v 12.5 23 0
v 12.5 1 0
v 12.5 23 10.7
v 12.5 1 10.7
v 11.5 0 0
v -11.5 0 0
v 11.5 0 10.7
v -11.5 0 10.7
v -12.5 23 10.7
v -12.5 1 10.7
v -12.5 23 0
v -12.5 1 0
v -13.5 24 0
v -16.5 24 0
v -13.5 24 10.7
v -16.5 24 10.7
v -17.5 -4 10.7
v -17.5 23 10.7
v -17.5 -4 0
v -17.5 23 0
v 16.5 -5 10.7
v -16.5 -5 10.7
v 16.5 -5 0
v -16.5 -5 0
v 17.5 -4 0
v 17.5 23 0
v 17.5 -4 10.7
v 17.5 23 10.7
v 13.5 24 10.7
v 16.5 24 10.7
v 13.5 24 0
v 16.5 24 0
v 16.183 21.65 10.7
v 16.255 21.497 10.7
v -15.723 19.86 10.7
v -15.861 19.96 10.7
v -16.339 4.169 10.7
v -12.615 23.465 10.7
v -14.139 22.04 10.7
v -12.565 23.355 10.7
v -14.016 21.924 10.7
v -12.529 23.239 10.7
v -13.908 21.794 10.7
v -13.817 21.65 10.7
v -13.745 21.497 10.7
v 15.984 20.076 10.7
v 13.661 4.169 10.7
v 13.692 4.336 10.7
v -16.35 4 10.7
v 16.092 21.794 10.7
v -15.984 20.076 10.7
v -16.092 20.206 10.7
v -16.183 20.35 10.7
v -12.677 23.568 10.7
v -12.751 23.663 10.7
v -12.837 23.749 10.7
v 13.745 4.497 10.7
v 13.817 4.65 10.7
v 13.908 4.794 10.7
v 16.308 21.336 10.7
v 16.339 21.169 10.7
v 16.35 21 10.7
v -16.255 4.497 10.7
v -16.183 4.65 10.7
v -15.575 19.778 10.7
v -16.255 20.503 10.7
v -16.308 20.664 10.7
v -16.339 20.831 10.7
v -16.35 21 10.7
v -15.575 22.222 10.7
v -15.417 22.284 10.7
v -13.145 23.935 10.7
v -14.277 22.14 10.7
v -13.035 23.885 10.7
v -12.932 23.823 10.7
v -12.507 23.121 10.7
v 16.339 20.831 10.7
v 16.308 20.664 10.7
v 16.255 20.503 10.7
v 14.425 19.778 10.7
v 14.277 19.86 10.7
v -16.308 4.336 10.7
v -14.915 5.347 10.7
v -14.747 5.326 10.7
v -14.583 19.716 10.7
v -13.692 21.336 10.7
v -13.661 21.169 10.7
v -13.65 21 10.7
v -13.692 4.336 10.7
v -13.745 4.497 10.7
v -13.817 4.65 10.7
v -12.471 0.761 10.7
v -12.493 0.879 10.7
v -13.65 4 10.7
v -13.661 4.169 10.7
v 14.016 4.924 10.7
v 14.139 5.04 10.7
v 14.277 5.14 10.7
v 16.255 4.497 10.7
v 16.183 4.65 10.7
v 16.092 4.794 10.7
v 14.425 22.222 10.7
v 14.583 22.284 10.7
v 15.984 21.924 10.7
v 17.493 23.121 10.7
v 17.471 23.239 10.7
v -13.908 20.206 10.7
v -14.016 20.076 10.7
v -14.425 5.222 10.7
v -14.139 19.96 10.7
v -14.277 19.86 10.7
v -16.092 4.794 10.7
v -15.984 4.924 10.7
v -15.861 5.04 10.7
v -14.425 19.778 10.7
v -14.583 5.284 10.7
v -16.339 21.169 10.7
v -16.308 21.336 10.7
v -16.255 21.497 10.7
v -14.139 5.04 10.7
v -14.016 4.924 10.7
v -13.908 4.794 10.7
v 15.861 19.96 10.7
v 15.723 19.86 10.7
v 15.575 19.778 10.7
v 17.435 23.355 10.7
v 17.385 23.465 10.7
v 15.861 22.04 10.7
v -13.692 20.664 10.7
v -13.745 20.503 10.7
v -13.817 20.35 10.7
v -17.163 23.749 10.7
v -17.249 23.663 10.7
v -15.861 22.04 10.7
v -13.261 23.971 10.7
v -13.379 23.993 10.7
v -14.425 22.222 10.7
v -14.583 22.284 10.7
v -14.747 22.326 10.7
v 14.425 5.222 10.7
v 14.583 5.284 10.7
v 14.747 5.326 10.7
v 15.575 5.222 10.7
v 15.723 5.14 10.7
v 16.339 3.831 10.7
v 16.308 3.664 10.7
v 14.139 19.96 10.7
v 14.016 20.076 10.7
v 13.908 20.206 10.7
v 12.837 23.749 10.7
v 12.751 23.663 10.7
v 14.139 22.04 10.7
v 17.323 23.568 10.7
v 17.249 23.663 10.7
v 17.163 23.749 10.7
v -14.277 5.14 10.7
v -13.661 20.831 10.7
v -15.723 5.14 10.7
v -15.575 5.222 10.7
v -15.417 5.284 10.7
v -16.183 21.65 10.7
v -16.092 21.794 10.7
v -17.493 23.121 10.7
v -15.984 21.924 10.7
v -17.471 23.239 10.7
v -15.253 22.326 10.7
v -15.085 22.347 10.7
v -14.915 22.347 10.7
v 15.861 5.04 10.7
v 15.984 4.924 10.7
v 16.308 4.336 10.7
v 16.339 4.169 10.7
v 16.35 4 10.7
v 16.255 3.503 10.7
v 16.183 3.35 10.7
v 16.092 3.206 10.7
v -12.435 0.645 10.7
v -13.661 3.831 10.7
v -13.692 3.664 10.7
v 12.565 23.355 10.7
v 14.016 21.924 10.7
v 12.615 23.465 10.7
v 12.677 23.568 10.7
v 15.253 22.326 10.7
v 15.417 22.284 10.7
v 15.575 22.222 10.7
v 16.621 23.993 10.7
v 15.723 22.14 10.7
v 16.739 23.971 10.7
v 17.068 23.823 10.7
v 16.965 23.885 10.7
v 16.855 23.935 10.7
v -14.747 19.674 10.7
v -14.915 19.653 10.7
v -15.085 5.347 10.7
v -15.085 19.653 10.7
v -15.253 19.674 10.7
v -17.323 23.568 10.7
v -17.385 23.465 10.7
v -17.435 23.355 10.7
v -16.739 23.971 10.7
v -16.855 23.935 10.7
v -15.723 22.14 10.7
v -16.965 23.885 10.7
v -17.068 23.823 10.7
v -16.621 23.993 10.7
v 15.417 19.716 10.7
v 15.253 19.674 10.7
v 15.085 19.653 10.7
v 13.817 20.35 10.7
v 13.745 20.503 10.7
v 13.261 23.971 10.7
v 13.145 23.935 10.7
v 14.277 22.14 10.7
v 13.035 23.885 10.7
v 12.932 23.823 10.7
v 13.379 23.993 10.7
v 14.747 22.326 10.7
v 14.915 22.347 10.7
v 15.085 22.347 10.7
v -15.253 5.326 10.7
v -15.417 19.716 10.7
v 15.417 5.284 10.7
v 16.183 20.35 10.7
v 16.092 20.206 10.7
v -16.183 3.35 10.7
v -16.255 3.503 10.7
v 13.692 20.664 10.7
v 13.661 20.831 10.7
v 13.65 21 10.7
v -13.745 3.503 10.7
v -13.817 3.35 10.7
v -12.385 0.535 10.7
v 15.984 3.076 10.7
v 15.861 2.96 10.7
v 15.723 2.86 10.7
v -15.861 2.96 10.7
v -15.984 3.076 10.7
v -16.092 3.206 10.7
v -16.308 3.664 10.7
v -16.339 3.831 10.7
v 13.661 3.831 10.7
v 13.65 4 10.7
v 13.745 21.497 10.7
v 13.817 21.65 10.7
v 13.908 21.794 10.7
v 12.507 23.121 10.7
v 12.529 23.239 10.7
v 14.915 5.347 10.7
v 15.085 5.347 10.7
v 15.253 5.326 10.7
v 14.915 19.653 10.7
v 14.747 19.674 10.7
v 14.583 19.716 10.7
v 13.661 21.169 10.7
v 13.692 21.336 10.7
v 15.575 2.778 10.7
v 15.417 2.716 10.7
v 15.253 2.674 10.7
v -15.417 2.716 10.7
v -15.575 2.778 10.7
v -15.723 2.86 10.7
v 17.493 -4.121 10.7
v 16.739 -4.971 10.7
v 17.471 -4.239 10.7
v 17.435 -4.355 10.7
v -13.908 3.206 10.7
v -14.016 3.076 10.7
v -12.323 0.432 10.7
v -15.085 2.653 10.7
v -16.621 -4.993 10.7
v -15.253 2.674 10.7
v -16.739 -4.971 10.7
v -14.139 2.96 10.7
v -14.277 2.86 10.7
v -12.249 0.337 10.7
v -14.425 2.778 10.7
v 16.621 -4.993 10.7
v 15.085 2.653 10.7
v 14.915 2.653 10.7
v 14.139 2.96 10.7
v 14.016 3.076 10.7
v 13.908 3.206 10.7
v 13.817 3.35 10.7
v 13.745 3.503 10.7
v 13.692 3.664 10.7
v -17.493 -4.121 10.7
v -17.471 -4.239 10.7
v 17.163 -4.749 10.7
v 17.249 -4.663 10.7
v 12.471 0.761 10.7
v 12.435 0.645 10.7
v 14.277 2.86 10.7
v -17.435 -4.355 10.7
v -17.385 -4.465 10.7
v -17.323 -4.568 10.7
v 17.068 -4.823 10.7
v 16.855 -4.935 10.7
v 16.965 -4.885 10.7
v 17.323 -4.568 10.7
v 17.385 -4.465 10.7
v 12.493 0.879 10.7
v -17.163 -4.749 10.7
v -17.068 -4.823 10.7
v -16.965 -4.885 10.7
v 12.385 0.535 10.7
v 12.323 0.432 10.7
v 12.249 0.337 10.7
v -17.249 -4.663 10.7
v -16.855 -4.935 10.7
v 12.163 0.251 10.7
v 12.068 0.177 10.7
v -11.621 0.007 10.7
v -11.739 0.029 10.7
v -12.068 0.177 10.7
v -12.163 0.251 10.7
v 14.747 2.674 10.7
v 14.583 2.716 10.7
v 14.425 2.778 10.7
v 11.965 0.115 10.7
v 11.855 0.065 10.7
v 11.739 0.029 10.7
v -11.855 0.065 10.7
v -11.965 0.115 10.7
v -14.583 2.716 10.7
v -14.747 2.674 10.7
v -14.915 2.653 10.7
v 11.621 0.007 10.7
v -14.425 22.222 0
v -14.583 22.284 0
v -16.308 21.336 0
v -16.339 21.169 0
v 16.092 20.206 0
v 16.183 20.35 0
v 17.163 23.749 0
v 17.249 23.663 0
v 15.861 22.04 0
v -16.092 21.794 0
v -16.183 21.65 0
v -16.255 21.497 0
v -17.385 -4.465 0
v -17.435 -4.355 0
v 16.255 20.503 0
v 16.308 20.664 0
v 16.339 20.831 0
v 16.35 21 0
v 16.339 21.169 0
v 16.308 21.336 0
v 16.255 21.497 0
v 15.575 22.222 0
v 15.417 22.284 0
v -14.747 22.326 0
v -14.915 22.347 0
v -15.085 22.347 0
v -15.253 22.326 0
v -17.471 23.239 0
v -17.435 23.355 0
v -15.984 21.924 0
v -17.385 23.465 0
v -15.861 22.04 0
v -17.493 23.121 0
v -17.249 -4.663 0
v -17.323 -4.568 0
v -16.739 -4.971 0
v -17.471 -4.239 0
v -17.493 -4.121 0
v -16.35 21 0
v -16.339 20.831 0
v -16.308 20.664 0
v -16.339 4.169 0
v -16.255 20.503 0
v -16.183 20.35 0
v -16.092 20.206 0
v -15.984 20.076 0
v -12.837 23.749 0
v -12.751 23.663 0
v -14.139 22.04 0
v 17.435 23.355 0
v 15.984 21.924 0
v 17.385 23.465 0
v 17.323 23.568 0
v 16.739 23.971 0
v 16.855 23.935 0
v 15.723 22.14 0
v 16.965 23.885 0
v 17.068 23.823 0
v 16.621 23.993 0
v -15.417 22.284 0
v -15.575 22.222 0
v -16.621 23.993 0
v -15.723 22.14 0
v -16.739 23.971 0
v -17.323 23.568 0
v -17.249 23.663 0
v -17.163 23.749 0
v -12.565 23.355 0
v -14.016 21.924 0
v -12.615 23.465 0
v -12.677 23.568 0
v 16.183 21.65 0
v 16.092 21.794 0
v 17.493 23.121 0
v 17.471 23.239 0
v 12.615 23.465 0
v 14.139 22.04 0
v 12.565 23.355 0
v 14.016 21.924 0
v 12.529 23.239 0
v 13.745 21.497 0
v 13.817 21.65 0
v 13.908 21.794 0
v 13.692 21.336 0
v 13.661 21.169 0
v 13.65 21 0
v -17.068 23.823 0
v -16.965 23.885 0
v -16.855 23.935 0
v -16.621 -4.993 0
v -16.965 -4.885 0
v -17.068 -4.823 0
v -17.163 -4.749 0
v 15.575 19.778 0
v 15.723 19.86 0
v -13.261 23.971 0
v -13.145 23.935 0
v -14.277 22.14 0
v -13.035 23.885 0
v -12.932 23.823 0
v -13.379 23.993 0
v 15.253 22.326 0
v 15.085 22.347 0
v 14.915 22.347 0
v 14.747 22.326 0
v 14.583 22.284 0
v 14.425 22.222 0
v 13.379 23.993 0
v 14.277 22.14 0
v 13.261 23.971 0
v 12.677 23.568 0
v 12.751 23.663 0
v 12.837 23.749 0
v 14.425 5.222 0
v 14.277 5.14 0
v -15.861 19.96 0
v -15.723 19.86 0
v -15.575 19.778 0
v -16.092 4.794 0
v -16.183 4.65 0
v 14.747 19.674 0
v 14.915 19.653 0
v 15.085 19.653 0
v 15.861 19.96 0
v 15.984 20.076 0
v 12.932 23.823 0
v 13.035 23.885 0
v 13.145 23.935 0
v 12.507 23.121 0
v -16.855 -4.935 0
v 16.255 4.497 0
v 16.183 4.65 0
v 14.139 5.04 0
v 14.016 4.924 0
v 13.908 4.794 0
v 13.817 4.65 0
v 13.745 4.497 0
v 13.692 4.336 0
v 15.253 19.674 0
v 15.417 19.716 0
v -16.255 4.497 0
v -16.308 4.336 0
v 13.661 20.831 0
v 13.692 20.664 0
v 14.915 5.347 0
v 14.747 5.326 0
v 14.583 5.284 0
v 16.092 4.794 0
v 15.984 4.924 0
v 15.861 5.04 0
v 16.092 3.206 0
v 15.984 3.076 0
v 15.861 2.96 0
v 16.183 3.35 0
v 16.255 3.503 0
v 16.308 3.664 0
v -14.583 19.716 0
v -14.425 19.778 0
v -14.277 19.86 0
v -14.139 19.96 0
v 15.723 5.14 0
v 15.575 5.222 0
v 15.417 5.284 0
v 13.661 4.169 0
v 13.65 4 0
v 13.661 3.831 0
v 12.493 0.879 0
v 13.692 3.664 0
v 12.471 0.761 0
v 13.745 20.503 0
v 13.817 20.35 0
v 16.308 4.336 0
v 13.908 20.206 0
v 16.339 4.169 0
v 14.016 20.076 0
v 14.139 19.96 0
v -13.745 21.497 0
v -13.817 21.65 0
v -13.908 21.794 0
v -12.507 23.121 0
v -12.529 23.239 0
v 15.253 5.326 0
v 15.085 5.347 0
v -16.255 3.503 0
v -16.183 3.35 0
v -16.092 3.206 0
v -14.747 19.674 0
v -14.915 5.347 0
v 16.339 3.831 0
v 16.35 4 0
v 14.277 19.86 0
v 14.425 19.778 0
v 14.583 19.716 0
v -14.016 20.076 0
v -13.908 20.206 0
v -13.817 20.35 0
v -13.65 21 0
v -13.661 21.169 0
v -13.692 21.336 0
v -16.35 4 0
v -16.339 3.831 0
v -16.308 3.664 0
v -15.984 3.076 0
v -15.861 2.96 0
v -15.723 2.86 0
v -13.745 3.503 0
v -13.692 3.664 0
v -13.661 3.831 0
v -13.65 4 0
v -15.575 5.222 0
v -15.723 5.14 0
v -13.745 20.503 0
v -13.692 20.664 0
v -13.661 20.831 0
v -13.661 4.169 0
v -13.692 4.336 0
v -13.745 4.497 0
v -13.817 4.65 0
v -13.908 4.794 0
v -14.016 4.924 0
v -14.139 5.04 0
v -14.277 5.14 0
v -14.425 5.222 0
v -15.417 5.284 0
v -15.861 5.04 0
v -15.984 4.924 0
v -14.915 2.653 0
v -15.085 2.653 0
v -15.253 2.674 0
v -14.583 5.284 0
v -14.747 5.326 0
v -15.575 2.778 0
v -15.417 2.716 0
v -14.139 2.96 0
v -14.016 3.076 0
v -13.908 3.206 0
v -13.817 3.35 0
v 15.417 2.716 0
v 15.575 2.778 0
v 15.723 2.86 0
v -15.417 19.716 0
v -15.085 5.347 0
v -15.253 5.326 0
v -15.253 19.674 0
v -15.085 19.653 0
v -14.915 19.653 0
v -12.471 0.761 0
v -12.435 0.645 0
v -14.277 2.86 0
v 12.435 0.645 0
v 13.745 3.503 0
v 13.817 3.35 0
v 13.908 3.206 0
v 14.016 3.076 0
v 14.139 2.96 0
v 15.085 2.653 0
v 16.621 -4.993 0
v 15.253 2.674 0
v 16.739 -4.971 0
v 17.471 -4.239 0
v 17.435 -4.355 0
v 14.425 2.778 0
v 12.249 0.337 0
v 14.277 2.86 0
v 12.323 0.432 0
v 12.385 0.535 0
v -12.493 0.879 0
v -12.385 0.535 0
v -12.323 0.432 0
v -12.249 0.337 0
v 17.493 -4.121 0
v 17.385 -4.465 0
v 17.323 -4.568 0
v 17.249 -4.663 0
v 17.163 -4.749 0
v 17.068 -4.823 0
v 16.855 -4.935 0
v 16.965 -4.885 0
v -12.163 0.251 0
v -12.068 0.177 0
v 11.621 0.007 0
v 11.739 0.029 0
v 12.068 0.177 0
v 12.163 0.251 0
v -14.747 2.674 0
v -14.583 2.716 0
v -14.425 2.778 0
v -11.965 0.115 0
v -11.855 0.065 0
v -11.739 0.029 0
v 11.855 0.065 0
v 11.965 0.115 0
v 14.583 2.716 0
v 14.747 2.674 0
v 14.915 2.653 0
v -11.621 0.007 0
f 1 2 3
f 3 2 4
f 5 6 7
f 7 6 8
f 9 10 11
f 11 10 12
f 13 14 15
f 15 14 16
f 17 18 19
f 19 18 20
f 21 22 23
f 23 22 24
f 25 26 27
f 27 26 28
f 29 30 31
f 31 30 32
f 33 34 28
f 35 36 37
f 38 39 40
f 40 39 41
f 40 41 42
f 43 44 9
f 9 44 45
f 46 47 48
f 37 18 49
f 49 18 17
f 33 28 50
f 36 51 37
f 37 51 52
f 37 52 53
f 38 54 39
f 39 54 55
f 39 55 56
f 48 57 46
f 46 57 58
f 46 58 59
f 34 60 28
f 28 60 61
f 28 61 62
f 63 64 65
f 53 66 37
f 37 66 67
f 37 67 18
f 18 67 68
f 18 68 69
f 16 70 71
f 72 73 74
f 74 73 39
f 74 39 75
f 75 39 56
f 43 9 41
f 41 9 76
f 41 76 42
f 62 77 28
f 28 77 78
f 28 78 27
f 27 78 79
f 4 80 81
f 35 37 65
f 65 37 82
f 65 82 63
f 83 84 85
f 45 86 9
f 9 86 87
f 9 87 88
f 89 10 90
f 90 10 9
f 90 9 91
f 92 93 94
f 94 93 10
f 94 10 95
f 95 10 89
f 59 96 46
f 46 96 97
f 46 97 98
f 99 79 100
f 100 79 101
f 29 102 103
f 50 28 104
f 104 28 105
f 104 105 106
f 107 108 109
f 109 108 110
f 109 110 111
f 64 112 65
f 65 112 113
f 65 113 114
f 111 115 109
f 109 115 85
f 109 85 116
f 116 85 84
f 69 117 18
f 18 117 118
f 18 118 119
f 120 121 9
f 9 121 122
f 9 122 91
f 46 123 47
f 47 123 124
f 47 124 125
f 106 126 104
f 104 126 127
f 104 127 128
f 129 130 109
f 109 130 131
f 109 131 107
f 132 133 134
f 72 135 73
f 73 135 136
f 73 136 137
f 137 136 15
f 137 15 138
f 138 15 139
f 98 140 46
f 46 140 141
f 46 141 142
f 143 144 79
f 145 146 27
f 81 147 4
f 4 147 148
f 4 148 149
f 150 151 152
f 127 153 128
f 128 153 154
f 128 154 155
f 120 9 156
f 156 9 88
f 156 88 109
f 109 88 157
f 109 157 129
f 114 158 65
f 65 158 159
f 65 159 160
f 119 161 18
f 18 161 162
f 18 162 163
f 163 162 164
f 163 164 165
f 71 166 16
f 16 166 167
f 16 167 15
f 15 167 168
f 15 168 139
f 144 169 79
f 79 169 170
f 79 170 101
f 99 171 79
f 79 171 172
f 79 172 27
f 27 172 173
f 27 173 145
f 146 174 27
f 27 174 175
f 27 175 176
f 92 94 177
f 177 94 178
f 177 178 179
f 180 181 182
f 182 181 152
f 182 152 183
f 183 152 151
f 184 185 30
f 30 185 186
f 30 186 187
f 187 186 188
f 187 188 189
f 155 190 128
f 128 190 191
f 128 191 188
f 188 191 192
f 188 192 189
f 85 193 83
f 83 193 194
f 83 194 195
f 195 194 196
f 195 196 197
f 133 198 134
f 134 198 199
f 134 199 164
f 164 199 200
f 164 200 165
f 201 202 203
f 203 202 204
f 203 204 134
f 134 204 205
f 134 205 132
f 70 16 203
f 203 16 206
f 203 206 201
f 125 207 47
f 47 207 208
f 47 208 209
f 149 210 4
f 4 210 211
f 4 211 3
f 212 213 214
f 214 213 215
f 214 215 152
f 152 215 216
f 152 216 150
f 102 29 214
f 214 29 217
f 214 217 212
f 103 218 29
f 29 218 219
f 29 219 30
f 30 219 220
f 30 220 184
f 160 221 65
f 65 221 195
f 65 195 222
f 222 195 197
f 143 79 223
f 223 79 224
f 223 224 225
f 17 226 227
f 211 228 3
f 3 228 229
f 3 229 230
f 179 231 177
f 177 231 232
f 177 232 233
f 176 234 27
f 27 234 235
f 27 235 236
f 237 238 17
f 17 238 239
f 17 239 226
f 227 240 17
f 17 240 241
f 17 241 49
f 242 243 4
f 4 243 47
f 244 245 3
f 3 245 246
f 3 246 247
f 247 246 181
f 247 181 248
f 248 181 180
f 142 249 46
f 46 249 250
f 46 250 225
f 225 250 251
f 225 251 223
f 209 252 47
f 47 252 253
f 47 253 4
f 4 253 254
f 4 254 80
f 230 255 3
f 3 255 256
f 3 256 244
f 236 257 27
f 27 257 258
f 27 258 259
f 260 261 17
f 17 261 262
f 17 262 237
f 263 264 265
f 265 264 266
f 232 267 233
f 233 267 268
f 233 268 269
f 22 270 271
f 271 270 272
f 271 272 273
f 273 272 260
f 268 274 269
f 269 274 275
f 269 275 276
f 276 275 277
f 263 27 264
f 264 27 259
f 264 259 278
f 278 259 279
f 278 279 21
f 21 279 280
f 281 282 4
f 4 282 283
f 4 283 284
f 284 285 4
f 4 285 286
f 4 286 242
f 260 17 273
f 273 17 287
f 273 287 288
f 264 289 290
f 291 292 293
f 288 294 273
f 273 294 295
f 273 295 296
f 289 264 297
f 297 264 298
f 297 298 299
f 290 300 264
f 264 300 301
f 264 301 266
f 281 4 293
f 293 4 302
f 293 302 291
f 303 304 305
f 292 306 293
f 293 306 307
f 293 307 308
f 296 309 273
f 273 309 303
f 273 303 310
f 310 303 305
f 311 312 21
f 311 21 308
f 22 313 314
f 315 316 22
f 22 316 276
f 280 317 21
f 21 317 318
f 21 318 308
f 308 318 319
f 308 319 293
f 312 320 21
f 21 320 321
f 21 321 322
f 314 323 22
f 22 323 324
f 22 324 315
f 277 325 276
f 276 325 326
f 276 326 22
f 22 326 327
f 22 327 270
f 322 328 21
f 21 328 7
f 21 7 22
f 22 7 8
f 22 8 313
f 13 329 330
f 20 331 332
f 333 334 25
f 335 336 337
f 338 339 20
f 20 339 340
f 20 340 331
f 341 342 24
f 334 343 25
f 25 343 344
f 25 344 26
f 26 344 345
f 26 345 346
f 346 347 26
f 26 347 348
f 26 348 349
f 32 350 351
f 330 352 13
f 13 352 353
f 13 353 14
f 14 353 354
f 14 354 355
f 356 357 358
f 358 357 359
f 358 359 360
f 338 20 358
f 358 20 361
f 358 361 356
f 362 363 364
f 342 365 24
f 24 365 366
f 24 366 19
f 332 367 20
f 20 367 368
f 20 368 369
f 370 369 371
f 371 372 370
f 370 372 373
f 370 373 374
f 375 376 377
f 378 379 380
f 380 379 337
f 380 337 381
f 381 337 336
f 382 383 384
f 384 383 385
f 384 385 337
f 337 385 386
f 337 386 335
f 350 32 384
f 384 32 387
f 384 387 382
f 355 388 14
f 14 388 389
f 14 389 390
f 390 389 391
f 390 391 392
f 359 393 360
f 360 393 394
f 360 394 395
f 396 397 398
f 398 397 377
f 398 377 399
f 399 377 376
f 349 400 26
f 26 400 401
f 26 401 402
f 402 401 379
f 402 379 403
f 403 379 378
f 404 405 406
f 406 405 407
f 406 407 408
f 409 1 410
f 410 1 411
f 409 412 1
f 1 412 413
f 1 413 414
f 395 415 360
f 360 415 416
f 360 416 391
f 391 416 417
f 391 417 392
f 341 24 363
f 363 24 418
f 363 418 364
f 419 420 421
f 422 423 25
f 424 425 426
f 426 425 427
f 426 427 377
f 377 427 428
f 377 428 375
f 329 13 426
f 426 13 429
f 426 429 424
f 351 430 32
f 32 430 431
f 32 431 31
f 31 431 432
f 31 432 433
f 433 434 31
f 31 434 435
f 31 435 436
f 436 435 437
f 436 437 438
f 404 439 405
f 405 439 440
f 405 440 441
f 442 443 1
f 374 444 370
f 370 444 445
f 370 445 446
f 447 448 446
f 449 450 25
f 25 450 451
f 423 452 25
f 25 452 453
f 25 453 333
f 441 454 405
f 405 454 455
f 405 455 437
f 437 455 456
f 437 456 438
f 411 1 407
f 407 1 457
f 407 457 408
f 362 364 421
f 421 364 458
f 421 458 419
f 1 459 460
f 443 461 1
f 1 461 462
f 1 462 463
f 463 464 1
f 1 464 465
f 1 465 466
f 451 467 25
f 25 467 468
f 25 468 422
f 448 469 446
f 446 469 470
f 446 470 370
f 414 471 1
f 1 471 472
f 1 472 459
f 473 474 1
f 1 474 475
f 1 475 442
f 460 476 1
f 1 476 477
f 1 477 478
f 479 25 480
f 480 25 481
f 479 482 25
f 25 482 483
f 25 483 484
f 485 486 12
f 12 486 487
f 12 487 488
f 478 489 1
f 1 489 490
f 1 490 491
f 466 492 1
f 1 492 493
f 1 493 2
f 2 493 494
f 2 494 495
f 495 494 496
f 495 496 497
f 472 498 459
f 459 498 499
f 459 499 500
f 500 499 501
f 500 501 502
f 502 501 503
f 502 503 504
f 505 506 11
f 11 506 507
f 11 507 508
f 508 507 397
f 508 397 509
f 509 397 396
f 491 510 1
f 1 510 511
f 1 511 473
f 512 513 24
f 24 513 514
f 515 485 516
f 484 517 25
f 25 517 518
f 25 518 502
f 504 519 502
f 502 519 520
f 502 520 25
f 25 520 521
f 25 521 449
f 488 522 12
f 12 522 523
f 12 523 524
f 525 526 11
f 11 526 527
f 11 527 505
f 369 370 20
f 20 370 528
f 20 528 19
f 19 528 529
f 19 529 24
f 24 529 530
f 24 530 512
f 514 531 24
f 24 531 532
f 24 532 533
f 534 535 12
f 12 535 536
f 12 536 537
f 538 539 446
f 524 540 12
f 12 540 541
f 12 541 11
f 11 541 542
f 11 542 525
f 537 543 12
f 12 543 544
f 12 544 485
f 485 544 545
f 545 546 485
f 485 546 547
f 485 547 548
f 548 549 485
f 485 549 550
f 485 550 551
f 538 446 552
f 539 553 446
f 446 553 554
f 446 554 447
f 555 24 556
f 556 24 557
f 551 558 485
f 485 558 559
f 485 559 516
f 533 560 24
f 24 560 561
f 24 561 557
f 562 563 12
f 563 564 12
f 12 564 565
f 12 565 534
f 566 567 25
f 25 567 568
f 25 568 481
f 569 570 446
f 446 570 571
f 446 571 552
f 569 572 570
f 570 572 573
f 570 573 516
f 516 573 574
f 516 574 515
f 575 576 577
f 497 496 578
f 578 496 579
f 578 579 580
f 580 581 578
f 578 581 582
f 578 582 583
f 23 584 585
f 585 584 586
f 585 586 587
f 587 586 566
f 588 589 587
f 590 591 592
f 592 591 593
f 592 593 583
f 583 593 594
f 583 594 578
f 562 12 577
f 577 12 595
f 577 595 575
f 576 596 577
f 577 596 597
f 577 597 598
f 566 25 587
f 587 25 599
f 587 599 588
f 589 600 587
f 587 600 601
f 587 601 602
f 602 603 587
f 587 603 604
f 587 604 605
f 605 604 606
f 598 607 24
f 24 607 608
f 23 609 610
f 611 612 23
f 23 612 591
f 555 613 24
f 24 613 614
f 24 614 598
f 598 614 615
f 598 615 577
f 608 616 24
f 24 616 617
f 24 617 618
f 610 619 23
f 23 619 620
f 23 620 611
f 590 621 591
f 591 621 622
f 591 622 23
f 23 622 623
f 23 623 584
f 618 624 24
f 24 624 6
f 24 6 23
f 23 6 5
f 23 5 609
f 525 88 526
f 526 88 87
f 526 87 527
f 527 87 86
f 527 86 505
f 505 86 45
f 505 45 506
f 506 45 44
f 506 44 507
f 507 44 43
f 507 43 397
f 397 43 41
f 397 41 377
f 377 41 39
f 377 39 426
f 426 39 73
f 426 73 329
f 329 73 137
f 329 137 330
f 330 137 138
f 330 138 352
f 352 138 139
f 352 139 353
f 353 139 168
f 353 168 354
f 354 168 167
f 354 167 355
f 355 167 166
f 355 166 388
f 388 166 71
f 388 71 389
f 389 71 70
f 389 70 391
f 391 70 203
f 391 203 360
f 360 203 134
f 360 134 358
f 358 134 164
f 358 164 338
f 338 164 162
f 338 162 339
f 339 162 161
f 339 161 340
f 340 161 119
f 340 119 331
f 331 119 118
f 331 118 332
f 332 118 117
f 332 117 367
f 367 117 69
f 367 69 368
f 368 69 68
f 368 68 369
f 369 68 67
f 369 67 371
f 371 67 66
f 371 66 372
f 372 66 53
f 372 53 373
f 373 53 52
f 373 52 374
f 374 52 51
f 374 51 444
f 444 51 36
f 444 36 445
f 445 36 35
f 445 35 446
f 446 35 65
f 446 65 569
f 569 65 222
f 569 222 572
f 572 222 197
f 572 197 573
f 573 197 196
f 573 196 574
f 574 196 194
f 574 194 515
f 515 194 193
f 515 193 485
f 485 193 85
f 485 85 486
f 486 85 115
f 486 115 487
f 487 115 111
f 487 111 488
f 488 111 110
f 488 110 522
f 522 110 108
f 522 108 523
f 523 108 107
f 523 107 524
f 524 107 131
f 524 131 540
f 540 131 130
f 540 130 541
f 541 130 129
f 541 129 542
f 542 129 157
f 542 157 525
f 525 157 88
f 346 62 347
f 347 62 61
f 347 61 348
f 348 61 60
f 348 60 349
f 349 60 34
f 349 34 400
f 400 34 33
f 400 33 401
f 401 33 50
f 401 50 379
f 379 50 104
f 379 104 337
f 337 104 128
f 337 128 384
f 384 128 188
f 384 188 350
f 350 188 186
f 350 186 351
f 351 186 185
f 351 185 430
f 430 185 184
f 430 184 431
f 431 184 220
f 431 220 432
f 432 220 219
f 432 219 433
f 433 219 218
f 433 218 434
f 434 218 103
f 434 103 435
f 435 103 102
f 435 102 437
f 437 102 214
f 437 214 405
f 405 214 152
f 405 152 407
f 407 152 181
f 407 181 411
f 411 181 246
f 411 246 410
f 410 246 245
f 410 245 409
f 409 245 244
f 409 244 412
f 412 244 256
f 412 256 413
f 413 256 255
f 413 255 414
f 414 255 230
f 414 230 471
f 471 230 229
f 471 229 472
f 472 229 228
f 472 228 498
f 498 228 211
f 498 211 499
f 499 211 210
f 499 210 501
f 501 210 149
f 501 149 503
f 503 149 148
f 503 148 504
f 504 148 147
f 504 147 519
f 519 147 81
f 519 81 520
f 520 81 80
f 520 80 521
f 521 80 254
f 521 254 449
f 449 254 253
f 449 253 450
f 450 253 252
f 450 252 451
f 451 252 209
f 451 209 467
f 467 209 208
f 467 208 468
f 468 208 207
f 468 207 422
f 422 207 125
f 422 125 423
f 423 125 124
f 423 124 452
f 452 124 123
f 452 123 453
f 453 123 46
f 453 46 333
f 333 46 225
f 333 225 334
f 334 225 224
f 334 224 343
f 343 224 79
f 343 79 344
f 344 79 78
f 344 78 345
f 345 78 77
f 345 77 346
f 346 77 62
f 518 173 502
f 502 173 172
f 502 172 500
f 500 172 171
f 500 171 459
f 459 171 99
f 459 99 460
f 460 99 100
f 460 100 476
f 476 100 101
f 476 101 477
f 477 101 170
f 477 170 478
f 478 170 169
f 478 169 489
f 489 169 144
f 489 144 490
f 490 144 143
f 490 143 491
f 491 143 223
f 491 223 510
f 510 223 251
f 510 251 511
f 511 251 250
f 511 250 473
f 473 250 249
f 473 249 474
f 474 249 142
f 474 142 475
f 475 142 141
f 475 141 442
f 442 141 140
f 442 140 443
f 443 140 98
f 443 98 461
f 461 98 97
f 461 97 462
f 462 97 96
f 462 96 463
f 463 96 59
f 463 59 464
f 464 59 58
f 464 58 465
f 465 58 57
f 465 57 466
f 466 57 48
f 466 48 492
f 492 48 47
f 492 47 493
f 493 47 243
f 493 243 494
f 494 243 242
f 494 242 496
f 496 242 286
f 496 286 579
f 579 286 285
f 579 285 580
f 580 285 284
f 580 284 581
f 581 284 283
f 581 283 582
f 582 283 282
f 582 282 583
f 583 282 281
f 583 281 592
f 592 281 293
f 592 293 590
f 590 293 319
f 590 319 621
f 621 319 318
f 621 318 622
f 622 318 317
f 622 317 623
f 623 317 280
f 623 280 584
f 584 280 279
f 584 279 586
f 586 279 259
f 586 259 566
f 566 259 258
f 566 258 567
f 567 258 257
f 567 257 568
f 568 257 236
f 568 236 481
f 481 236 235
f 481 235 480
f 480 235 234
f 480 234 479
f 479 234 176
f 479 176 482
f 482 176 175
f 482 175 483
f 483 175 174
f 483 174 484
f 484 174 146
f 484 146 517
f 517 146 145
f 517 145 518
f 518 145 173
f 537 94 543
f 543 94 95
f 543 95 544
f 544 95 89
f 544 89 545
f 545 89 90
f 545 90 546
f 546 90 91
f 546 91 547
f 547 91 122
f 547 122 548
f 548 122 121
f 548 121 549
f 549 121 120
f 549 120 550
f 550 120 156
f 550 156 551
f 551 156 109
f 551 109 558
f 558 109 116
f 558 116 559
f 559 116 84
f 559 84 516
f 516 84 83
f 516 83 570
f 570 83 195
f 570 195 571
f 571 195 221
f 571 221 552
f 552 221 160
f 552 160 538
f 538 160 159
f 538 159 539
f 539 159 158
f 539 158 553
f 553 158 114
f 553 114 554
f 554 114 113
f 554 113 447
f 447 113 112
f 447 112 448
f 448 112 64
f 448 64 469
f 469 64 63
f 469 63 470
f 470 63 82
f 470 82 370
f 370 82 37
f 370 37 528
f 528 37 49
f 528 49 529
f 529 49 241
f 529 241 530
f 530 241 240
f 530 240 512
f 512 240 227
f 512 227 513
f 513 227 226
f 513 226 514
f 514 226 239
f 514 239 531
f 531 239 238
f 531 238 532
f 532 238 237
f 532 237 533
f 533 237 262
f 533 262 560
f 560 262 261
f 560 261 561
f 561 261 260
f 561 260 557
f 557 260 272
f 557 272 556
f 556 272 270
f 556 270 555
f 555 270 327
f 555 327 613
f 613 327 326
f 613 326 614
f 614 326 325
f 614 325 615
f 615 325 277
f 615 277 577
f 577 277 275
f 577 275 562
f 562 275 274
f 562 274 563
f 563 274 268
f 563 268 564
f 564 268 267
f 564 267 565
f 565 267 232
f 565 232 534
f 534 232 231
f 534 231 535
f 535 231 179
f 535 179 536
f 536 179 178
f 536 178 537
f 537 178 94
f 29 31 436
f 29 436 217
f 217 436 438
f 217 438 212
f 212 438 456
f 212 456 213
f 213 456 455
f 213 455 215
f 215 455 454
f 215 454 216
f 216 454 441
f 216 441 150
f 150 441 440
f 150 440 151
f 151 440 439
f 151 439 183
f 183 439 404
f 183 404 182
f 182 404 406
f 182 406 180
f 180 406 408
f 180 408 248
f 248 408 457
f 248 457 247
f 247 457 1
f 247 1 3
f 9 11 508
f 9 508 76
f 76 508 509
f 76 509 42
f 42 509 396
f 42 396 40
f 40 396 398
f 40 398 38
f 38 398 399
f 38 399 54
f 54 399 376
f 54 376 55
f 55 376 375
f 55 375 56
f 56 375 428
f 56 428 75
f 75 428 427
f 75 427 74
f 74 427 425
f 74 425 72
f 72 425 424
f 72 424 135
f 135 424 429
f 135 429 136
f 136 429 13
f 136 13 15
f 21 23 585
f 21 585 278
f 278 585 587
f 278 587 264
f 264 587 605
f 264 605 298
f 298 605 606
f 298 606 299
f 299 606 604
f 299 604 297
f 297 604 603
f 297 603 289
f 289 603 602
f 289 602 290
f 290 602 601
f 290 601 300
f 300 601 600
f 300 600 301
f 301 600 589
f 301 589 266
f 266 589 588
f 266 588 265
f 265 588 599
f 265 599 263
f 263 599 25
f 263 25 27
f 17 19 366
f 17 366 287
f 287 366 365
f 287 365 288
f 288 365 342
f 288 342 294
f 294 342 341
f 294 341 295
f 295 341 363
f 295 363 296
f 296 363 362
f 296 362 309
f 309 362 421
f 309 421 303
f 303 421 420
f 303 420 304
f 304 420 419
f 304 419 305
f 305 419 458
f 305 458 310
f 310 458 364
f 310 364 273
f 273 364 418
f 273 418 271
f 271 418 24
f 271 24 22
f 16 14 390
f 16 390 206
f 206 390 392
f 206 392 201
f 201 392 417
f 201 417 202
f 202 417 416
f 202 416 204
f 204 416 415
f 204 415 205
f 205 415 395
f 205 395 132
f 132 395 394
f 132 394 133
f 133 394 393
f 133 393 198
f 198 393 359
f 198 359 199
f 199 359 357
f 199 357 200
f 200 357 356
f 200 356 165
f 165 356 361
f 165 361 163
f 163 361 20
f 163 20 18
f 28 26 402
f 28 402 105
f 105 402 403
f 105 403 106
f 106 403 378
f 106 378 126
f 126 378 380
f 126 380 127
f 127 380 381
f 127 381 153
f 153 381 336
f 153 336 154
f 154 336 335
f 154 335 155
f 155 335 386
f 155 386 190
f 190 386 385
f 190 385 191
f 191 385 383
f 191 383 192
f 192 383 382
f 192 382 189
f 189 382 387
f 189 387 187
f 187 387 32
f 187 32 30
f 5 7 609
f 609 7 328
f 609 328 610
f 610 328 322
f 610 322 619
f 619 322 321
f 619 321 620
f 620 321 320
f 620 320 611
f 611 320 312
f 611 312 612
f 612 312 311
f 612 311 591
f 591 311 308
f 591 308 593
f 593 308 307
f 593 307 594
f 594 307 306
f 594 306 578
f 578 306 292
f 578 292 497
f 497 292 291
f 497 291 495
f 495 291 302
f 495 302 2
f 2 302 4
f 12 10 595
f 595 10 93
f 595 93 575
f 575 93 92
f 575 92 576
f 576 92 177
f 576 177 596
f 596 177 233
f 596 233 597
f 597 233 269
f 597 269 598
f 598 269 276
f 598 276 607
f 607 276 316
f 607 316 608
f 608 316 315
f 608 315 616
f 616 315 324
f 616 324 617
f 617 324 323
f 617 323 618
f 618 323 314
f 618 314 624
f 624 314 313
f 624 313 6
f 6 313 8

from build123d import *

# Parameters (mm, degrees)
BOSS_EXTRU_1_DEPTH           = 10.7
ESQUISSE2_R                  = 1.35
ENL_V_MAT_EXTRU_1_DEPTH      = 1
ENL_V_MAT_EXTRU_1_DEPTH_BACK = 11.7
CONG_1_R                     = 1


with BuildPart() as part:
    # Esquisse1 → Boss.-Extru.1 (new body)
    with BuildSketch(Plane.XY):
        Polygon((-12.5, 0), (12.5, 0), (12.5, 24), (17.5, 24), (17.5, -5), (-17.5, -5), (-17.5, 24), (-12.5, 24), align=None)
    extrude(amount=BOSS_EXTRU_1_DEPTH)

    # Esquisse2 → Enlèv. mat.-Extru.1 (cut, two sides)
    with BuildSketch(Plane.XY.offset(10.7)) as enl_v_mat_extru_1_sk:
        with Locations((-15, 21)):
            Circle(ESQUISSE2_R)
        with Locations((-15, 4)):
            Circle(ESQUISSE2_R)
        with Locations((15, 4)):
            Circle(ESQUISSE2_R)
        with Locations((15, 21)):
            Circle(ESQUISSE2_R)
    extrude(amount=ENL_V_MAT_EXTRU_1_DEPTH, mode=Mode.SUBTRACT)
    extrude(enl_v_mat_extru_1_sk.sketch, amount=-ENL_V_MAT_EXTRU_1_DEPTH_BACK, mode=Mode.SUBTRACT)

    # Congé1
    cong_1_edges = [part.edges().sort_by_distance(p)[0] for p in [
        (12.5, 24, 5.35),
        (17.5, 24, 5.35),
        (17.5, -5, 5.35),
        (-17.5, -5, 5.35),
        (-17.5, 24, 5.35),
        (-12.5, 24, 5.35),
        (-12.5, 0, 5.35),
        (12.5, 0, 5.35),
    ]]
    fillet(cong_1_edges, radius=CONG_1_R)


solid = part.part
